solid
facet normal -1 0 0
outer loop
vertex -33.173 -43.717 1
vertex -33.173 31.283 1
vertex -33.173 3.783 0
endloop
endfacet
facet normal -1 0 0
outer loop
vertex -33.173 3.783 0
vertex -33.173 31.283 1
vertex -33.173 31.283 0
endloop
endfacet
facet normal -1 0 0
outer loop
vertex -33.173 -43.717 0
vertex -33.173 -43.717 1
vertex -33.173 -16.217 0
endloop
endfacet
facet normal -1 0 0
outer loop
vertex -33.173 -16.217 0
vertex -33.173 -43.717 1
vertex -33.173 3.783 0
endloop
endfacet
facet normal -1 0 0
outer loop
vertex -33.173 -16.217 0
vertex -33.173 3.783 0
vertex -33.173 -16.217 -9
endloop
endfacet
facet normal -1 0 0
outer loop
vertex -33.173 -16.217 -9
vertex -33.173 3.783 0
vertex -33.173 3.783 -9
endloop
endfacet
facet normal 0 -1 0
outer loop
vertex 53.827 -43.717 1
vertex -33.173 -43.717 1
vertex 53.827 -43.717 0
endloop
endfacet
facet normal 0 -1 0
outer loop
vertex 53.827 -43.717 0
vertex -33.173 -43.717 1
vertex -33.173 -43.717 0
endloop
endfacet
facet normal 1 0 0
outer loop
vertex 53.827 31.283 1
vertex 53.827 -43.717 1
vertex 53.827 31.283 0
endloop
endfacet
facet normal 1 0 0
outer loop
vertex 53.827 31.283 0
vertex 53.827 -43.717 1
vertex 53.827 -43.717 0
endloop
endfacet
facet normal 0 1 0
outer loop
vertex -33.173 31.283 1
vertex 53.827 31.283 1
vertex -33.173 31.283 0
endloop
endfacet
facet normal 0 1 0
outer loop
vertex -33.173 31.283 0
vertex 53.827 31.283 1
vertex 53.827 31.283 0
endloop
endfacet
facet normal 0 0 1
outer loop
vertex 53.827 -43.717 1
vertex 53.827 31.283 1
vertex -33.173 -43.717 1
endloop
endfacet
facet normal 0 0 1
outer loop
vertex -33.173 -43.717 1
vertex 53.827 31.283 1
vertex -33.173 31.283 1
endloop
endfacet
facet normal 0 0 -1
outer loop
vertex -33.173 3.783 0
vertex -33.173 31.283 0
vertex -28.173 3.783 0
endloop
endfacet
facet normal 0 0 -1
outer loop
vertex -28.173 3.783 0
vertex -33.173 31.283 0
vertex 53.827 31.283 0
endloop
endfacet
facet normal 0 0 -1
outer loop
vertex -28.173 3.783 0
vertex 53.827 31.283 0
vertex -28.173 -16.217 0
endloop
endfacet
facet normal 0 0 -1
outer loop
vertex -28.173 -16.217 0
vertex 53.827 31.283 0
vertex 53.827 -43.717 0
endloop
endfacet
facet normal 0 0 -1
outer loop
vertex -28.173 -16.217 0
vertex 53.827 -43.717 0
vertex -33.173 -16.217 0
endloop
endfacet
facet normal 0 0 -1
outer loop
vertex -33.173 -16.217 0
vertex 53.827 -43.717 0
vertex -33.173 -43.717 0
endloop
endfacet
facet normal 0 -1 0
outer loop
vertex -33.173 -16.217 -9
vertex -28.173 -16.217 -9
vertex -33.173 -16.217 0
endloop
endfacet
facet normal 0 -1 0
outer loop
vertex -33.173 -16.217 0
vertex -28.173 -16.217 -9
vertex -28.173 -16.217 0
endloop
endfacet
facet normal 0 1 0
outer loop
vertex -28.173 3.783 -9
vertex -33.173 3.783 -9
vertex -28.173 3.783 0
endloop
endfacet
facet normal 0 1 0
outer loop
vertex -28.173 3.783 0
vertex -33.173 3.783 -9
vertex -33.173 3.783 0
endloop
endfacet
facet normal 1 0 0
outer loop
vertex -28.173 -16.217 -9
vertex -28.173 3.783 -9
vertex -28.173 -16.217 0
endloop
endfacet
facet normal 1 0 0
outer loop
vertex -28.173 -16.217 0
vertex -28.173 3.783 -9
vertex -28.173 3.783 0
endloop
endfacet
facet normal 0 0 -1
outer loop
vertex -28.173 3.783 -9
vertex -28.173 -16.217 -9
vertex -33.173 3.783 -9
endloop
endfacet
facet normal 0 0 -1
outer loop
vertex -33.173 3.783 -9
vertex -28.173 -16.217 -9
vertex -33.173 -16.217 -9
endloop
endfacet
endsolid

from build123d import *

# Parameters (mm, degrees)
ESQUISSE1_W        = 87
ESQUISSE1_H        = 75
BOSS_EXTRU_1_DEPTH = 1
ESQUISSE2_W        = 10
ESQUISSE2_H        = 20
BOSS_EXTRU_2_DEPTH = 5


with BuildPart() as part:
    # Esquisse1 → Boss.-Extru.1 (new body)
    with BuildSketch(Plane.XY):
        with Locations((10.327168808, -6.216535433)):
            Rectangle(ESQUISSE1_W, ESQUISSE1_H)
    extrude(amount=BOSS_EXTRU_1_DEPTH)

    # Esquisse2 → Boss.-Extru.2 (add)
    with BuildSketch(Plane.ZY.offset(33.172831192)):
        with Locations((-4, -6.216535433)):
            Rectangle(ESQUISSE2_W, ESQUISSE2_H)
    extrude(amount=-BOSS_EXTRU_2_DEPTH)


solid = part.part
